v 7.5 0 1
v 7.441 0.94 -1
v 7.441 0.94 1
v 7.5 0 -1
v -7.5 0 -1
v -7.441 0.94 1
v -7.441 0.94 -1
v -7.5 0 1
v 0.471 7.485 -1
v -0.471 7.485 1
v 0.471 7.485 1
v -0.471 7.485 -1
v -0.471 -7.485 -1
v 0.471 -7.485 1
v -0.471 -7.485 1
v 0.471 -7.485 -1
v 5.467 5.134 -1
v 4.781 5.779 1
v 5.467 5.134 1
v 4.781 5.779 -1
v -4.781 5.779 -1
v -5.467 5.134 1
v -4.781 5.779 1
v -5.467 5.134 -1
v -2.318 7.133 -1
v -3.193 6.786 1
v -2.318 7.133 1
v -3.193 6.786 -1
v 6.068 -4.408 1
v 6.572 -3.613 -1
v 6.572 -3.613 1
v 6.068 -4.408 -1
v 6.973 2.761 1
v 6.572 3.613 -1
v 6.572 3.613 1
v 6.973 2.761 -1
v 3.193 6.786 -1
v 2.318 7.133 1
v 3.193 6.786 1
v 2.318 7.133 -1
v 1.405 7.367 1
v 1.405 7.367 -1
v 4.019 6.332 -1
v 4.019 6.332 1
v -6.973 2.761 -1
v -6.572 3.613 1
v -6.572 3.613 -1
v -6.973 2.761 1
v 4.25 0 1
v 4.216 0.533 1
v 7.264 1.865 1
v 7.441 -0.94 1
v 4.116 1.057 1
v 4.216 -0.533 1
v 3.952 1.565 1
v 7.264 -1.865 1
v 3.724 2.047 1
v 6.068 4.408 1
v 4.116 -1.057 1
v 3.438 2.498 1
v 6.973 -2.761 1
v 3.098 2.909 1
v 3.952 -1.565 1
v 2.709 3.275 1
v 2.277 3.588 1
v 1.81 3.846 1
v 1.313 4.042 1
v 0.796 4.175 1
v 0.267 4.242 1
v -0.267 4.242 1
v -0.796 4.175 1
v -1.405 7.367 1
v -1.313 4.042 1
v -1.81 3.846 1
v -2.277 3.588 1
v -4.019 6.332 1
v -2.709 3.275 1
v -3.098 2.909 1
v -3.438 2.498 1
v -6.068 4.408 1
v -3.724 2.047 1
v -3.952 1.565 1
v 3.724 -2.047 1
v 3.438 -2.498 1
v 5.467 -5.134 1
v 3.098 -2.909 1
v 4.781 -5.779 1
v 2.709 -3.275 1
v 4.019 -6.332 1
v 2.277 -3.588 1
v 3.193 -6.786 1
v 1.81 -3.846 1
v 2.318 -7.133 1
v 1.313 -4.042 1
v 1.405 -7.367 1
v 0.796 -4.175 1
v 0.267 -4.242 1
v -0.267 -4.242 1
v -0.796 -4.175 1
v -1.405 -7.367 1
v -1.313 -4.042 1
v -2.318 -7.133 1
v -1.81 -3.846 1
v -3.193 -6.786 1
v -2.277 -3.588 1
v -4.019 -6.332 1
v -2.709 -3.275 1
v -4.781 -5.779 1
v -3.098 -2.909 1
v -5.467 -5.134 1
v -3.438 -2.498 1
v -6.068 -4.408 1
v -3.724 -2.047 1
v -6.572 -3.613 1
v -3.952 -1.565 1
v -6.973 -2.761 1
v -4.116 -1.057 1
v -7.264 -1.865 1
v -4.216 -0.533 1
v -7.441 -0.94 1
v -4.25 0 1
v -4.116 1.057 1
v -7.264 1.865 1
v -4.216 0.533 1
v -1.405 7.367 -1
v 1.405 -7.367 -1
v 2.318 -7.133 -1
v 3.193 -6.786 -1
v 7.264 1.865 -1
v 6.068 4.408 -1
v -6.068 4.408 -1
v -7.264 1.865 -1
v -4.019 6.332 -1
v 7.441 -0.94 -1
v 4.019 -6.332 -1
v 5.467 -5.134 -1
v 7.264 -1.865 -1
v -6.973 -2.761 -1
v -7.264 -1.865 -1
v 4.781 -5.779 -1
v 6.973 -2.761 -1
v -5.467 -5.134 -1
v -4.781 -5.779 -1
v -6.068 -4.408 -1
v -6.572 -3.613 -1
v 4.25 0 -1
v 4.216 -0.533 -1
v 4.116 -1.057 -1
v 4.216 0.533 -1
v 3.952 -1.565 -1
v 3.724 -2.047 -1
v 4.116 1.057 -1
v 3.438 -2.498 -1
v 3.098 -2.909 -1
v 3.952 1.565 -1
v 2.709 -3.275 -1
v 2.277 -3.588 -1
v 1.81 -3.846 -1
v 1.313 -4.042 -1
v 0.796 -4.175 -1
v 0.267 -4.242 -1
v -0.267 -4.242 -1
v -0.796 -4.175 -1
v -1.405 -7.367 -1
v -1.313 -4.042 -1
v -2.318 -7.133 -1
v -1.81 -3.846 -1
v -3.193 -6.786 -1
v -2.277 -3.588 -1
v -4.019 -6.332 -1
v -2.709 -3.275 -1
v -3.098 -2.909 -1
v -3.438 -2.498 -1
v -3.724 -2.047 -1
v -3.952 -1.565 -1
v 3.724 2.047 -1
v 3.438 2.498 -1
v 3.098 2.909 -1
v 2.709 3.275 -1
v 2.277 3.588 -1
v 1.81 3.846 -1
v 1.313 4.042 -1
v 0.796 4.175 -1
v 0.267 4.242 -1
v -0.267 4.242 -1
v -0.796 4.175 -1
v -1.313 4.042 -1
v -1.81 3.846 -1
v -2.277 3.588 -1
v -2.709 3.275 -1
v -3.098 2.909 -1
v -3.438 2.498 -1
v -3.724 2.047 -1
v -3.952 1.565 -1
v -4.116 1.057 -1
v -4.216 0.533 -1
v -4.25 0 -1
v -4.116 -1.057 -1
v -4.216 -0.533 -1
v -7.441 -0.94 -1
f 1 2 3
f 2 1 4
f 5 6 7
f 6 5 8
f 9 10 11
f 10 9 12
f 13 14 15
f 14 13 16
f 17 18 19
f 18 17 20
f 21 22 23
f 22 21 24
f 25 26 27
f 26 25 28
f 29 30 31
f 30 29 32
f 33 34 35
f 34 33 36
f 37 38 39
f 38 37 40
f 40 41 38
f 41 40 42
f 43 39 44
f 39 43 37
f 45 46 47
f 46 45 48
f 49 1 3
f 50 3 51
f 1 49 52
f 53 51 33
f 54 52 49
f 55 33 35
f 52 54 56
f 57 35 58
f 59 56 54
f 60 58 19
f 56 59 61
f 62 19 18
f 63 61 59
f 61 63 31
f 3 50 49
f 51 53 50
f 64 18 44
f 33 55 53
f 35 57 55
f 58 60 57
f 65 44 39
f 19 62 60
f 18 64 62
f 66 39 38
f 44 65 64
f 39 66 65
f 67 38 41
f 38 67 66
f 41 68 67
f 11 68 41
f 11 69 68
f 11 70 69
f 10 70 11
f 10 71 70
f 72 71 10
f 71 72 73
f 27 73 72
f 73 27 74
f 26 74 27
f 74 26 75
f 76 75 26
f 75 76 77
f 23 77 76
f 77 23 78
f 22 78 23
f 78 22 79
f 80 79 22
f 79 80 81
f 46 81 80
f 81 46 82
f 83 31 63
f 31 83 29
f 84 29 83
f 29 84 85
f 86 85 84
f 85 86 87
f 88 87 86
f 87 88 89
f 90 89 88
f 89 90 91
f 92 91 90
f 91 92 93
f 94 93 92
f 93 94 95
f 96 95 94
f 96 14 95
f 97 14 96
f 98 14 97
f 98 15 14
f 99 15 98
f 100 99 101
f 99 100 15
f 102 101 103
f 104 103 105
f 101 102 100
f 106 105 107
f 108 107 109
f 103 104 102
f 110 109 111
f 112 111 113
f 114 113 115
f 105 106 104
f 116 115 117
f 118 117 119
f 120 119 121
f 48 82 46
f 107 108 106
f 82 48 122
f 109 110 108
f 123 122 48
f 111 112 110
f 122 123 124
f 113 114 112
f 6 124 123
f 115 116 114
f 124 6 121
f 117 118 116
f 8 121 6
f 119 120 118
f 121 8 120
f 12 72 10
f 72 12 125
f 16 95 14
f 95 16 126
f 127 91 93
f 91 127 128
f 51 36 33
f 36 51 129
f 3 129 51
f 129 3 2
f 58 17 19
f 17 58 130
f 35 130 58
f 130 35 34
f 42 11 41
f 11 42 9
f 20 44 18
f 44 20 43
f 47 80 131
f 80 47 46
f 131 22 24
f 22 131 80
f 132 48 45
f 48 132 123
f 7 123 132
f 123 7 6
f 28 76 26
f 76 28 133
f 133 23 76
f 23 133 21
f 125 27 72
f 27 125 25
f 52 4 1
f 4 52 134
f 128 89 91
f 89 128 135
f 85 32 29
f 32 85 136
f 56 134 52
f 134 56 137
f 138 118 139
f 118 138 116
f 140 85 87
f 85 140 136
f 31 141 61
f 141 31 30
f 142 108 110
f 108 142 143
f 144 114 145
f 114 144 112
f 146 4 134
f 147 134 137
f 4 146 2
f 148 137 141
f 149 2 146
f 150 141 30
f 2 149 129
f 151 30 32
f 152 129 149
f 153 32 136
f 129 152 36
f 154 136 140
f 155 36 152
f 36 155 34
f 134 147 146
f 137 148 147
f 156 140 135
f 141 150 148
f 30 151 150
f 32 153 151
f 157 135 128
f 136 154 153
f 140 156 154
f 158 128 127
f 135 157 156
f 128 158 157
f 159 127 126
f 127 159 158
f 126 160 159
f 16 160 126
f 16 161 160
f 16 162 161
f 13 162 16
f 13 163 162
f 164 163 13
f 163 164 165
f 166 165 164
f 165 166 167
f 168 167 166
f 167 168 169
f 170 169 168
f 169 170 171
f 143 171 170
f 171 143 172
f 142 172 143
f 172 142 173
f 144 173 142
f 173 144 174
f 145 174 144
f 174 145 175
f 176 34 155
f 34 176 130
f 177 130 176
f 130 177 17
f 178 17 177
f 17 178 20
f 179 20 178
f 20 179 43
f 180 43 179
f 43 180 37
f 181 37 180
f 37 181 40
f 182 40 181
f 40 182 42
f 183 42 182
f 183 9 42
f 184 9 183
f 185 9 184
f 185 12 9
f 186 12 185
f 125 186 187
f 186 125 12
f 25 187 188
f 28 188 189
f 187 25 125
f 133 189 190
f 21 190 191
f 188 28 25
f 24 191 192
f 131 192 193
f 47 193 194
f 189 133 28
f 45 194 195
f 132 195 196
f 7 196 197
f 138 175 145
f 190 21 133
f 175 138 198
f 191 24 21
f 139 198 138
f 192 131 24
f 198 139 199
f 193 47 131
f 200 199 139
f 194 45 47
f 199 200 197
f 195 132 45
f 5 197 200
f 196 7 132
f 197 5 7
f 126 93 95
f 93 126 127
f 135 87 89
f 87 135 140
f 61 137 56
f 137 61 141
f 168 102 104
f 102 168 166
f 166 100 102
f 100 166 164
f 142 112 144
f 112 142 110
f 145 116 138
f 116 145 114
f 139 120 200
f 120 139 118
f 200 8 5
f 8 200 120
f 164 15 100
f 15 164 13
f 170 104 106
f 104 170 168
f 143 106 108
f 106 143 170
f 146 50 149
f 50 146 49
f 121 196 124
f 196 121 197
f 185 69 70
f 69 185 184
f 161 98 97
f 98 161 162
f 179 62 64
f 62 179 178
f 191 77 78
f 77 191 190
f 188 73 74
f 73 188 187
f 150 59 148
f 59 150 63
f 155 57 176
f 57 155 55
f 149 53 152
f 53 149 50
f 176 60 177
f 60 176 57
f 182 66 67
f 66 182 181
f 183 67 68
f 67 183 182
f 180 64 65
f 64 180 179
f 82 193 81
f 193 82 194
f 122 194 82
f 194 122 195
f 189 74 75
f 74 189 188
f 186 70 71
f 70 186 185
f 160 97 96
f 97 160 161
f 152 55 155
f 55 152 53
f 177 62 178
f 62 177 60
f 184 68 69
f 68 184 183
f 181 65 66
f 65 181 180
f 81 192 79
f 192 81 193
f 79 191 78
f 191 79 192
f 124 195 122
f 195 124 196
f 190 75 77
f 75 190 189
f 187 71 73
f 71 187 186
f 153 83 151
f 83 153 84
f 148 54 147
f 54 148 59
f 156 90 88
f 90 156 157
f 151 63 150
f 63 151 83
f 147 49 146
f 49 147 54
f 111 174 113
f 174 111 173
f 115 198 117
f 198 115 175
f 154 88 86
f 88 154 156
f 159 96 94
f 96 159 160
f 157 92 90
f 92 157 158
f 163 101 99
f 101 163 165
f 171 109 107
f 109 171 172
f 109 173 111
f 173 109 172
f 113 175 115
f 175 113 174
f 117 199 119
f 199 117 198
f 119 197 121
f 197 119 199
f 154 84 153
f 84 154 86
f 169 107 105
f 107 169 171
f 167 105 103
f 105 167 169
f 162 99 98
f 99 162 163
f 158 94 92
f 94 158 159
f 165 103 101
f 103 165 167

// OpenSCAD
$fn = 50;


difference() {
	union() {
		translate(v = [0, 0, -1.0000000000]) {
			cylinder(h = 2, r = 7.5000000000);
		}
	}
	union() {
		translate(v = [0, 0, -100.0000000000]) {
			cylinder(h = 200, r = 4.2500000000);
		}
	}
}
